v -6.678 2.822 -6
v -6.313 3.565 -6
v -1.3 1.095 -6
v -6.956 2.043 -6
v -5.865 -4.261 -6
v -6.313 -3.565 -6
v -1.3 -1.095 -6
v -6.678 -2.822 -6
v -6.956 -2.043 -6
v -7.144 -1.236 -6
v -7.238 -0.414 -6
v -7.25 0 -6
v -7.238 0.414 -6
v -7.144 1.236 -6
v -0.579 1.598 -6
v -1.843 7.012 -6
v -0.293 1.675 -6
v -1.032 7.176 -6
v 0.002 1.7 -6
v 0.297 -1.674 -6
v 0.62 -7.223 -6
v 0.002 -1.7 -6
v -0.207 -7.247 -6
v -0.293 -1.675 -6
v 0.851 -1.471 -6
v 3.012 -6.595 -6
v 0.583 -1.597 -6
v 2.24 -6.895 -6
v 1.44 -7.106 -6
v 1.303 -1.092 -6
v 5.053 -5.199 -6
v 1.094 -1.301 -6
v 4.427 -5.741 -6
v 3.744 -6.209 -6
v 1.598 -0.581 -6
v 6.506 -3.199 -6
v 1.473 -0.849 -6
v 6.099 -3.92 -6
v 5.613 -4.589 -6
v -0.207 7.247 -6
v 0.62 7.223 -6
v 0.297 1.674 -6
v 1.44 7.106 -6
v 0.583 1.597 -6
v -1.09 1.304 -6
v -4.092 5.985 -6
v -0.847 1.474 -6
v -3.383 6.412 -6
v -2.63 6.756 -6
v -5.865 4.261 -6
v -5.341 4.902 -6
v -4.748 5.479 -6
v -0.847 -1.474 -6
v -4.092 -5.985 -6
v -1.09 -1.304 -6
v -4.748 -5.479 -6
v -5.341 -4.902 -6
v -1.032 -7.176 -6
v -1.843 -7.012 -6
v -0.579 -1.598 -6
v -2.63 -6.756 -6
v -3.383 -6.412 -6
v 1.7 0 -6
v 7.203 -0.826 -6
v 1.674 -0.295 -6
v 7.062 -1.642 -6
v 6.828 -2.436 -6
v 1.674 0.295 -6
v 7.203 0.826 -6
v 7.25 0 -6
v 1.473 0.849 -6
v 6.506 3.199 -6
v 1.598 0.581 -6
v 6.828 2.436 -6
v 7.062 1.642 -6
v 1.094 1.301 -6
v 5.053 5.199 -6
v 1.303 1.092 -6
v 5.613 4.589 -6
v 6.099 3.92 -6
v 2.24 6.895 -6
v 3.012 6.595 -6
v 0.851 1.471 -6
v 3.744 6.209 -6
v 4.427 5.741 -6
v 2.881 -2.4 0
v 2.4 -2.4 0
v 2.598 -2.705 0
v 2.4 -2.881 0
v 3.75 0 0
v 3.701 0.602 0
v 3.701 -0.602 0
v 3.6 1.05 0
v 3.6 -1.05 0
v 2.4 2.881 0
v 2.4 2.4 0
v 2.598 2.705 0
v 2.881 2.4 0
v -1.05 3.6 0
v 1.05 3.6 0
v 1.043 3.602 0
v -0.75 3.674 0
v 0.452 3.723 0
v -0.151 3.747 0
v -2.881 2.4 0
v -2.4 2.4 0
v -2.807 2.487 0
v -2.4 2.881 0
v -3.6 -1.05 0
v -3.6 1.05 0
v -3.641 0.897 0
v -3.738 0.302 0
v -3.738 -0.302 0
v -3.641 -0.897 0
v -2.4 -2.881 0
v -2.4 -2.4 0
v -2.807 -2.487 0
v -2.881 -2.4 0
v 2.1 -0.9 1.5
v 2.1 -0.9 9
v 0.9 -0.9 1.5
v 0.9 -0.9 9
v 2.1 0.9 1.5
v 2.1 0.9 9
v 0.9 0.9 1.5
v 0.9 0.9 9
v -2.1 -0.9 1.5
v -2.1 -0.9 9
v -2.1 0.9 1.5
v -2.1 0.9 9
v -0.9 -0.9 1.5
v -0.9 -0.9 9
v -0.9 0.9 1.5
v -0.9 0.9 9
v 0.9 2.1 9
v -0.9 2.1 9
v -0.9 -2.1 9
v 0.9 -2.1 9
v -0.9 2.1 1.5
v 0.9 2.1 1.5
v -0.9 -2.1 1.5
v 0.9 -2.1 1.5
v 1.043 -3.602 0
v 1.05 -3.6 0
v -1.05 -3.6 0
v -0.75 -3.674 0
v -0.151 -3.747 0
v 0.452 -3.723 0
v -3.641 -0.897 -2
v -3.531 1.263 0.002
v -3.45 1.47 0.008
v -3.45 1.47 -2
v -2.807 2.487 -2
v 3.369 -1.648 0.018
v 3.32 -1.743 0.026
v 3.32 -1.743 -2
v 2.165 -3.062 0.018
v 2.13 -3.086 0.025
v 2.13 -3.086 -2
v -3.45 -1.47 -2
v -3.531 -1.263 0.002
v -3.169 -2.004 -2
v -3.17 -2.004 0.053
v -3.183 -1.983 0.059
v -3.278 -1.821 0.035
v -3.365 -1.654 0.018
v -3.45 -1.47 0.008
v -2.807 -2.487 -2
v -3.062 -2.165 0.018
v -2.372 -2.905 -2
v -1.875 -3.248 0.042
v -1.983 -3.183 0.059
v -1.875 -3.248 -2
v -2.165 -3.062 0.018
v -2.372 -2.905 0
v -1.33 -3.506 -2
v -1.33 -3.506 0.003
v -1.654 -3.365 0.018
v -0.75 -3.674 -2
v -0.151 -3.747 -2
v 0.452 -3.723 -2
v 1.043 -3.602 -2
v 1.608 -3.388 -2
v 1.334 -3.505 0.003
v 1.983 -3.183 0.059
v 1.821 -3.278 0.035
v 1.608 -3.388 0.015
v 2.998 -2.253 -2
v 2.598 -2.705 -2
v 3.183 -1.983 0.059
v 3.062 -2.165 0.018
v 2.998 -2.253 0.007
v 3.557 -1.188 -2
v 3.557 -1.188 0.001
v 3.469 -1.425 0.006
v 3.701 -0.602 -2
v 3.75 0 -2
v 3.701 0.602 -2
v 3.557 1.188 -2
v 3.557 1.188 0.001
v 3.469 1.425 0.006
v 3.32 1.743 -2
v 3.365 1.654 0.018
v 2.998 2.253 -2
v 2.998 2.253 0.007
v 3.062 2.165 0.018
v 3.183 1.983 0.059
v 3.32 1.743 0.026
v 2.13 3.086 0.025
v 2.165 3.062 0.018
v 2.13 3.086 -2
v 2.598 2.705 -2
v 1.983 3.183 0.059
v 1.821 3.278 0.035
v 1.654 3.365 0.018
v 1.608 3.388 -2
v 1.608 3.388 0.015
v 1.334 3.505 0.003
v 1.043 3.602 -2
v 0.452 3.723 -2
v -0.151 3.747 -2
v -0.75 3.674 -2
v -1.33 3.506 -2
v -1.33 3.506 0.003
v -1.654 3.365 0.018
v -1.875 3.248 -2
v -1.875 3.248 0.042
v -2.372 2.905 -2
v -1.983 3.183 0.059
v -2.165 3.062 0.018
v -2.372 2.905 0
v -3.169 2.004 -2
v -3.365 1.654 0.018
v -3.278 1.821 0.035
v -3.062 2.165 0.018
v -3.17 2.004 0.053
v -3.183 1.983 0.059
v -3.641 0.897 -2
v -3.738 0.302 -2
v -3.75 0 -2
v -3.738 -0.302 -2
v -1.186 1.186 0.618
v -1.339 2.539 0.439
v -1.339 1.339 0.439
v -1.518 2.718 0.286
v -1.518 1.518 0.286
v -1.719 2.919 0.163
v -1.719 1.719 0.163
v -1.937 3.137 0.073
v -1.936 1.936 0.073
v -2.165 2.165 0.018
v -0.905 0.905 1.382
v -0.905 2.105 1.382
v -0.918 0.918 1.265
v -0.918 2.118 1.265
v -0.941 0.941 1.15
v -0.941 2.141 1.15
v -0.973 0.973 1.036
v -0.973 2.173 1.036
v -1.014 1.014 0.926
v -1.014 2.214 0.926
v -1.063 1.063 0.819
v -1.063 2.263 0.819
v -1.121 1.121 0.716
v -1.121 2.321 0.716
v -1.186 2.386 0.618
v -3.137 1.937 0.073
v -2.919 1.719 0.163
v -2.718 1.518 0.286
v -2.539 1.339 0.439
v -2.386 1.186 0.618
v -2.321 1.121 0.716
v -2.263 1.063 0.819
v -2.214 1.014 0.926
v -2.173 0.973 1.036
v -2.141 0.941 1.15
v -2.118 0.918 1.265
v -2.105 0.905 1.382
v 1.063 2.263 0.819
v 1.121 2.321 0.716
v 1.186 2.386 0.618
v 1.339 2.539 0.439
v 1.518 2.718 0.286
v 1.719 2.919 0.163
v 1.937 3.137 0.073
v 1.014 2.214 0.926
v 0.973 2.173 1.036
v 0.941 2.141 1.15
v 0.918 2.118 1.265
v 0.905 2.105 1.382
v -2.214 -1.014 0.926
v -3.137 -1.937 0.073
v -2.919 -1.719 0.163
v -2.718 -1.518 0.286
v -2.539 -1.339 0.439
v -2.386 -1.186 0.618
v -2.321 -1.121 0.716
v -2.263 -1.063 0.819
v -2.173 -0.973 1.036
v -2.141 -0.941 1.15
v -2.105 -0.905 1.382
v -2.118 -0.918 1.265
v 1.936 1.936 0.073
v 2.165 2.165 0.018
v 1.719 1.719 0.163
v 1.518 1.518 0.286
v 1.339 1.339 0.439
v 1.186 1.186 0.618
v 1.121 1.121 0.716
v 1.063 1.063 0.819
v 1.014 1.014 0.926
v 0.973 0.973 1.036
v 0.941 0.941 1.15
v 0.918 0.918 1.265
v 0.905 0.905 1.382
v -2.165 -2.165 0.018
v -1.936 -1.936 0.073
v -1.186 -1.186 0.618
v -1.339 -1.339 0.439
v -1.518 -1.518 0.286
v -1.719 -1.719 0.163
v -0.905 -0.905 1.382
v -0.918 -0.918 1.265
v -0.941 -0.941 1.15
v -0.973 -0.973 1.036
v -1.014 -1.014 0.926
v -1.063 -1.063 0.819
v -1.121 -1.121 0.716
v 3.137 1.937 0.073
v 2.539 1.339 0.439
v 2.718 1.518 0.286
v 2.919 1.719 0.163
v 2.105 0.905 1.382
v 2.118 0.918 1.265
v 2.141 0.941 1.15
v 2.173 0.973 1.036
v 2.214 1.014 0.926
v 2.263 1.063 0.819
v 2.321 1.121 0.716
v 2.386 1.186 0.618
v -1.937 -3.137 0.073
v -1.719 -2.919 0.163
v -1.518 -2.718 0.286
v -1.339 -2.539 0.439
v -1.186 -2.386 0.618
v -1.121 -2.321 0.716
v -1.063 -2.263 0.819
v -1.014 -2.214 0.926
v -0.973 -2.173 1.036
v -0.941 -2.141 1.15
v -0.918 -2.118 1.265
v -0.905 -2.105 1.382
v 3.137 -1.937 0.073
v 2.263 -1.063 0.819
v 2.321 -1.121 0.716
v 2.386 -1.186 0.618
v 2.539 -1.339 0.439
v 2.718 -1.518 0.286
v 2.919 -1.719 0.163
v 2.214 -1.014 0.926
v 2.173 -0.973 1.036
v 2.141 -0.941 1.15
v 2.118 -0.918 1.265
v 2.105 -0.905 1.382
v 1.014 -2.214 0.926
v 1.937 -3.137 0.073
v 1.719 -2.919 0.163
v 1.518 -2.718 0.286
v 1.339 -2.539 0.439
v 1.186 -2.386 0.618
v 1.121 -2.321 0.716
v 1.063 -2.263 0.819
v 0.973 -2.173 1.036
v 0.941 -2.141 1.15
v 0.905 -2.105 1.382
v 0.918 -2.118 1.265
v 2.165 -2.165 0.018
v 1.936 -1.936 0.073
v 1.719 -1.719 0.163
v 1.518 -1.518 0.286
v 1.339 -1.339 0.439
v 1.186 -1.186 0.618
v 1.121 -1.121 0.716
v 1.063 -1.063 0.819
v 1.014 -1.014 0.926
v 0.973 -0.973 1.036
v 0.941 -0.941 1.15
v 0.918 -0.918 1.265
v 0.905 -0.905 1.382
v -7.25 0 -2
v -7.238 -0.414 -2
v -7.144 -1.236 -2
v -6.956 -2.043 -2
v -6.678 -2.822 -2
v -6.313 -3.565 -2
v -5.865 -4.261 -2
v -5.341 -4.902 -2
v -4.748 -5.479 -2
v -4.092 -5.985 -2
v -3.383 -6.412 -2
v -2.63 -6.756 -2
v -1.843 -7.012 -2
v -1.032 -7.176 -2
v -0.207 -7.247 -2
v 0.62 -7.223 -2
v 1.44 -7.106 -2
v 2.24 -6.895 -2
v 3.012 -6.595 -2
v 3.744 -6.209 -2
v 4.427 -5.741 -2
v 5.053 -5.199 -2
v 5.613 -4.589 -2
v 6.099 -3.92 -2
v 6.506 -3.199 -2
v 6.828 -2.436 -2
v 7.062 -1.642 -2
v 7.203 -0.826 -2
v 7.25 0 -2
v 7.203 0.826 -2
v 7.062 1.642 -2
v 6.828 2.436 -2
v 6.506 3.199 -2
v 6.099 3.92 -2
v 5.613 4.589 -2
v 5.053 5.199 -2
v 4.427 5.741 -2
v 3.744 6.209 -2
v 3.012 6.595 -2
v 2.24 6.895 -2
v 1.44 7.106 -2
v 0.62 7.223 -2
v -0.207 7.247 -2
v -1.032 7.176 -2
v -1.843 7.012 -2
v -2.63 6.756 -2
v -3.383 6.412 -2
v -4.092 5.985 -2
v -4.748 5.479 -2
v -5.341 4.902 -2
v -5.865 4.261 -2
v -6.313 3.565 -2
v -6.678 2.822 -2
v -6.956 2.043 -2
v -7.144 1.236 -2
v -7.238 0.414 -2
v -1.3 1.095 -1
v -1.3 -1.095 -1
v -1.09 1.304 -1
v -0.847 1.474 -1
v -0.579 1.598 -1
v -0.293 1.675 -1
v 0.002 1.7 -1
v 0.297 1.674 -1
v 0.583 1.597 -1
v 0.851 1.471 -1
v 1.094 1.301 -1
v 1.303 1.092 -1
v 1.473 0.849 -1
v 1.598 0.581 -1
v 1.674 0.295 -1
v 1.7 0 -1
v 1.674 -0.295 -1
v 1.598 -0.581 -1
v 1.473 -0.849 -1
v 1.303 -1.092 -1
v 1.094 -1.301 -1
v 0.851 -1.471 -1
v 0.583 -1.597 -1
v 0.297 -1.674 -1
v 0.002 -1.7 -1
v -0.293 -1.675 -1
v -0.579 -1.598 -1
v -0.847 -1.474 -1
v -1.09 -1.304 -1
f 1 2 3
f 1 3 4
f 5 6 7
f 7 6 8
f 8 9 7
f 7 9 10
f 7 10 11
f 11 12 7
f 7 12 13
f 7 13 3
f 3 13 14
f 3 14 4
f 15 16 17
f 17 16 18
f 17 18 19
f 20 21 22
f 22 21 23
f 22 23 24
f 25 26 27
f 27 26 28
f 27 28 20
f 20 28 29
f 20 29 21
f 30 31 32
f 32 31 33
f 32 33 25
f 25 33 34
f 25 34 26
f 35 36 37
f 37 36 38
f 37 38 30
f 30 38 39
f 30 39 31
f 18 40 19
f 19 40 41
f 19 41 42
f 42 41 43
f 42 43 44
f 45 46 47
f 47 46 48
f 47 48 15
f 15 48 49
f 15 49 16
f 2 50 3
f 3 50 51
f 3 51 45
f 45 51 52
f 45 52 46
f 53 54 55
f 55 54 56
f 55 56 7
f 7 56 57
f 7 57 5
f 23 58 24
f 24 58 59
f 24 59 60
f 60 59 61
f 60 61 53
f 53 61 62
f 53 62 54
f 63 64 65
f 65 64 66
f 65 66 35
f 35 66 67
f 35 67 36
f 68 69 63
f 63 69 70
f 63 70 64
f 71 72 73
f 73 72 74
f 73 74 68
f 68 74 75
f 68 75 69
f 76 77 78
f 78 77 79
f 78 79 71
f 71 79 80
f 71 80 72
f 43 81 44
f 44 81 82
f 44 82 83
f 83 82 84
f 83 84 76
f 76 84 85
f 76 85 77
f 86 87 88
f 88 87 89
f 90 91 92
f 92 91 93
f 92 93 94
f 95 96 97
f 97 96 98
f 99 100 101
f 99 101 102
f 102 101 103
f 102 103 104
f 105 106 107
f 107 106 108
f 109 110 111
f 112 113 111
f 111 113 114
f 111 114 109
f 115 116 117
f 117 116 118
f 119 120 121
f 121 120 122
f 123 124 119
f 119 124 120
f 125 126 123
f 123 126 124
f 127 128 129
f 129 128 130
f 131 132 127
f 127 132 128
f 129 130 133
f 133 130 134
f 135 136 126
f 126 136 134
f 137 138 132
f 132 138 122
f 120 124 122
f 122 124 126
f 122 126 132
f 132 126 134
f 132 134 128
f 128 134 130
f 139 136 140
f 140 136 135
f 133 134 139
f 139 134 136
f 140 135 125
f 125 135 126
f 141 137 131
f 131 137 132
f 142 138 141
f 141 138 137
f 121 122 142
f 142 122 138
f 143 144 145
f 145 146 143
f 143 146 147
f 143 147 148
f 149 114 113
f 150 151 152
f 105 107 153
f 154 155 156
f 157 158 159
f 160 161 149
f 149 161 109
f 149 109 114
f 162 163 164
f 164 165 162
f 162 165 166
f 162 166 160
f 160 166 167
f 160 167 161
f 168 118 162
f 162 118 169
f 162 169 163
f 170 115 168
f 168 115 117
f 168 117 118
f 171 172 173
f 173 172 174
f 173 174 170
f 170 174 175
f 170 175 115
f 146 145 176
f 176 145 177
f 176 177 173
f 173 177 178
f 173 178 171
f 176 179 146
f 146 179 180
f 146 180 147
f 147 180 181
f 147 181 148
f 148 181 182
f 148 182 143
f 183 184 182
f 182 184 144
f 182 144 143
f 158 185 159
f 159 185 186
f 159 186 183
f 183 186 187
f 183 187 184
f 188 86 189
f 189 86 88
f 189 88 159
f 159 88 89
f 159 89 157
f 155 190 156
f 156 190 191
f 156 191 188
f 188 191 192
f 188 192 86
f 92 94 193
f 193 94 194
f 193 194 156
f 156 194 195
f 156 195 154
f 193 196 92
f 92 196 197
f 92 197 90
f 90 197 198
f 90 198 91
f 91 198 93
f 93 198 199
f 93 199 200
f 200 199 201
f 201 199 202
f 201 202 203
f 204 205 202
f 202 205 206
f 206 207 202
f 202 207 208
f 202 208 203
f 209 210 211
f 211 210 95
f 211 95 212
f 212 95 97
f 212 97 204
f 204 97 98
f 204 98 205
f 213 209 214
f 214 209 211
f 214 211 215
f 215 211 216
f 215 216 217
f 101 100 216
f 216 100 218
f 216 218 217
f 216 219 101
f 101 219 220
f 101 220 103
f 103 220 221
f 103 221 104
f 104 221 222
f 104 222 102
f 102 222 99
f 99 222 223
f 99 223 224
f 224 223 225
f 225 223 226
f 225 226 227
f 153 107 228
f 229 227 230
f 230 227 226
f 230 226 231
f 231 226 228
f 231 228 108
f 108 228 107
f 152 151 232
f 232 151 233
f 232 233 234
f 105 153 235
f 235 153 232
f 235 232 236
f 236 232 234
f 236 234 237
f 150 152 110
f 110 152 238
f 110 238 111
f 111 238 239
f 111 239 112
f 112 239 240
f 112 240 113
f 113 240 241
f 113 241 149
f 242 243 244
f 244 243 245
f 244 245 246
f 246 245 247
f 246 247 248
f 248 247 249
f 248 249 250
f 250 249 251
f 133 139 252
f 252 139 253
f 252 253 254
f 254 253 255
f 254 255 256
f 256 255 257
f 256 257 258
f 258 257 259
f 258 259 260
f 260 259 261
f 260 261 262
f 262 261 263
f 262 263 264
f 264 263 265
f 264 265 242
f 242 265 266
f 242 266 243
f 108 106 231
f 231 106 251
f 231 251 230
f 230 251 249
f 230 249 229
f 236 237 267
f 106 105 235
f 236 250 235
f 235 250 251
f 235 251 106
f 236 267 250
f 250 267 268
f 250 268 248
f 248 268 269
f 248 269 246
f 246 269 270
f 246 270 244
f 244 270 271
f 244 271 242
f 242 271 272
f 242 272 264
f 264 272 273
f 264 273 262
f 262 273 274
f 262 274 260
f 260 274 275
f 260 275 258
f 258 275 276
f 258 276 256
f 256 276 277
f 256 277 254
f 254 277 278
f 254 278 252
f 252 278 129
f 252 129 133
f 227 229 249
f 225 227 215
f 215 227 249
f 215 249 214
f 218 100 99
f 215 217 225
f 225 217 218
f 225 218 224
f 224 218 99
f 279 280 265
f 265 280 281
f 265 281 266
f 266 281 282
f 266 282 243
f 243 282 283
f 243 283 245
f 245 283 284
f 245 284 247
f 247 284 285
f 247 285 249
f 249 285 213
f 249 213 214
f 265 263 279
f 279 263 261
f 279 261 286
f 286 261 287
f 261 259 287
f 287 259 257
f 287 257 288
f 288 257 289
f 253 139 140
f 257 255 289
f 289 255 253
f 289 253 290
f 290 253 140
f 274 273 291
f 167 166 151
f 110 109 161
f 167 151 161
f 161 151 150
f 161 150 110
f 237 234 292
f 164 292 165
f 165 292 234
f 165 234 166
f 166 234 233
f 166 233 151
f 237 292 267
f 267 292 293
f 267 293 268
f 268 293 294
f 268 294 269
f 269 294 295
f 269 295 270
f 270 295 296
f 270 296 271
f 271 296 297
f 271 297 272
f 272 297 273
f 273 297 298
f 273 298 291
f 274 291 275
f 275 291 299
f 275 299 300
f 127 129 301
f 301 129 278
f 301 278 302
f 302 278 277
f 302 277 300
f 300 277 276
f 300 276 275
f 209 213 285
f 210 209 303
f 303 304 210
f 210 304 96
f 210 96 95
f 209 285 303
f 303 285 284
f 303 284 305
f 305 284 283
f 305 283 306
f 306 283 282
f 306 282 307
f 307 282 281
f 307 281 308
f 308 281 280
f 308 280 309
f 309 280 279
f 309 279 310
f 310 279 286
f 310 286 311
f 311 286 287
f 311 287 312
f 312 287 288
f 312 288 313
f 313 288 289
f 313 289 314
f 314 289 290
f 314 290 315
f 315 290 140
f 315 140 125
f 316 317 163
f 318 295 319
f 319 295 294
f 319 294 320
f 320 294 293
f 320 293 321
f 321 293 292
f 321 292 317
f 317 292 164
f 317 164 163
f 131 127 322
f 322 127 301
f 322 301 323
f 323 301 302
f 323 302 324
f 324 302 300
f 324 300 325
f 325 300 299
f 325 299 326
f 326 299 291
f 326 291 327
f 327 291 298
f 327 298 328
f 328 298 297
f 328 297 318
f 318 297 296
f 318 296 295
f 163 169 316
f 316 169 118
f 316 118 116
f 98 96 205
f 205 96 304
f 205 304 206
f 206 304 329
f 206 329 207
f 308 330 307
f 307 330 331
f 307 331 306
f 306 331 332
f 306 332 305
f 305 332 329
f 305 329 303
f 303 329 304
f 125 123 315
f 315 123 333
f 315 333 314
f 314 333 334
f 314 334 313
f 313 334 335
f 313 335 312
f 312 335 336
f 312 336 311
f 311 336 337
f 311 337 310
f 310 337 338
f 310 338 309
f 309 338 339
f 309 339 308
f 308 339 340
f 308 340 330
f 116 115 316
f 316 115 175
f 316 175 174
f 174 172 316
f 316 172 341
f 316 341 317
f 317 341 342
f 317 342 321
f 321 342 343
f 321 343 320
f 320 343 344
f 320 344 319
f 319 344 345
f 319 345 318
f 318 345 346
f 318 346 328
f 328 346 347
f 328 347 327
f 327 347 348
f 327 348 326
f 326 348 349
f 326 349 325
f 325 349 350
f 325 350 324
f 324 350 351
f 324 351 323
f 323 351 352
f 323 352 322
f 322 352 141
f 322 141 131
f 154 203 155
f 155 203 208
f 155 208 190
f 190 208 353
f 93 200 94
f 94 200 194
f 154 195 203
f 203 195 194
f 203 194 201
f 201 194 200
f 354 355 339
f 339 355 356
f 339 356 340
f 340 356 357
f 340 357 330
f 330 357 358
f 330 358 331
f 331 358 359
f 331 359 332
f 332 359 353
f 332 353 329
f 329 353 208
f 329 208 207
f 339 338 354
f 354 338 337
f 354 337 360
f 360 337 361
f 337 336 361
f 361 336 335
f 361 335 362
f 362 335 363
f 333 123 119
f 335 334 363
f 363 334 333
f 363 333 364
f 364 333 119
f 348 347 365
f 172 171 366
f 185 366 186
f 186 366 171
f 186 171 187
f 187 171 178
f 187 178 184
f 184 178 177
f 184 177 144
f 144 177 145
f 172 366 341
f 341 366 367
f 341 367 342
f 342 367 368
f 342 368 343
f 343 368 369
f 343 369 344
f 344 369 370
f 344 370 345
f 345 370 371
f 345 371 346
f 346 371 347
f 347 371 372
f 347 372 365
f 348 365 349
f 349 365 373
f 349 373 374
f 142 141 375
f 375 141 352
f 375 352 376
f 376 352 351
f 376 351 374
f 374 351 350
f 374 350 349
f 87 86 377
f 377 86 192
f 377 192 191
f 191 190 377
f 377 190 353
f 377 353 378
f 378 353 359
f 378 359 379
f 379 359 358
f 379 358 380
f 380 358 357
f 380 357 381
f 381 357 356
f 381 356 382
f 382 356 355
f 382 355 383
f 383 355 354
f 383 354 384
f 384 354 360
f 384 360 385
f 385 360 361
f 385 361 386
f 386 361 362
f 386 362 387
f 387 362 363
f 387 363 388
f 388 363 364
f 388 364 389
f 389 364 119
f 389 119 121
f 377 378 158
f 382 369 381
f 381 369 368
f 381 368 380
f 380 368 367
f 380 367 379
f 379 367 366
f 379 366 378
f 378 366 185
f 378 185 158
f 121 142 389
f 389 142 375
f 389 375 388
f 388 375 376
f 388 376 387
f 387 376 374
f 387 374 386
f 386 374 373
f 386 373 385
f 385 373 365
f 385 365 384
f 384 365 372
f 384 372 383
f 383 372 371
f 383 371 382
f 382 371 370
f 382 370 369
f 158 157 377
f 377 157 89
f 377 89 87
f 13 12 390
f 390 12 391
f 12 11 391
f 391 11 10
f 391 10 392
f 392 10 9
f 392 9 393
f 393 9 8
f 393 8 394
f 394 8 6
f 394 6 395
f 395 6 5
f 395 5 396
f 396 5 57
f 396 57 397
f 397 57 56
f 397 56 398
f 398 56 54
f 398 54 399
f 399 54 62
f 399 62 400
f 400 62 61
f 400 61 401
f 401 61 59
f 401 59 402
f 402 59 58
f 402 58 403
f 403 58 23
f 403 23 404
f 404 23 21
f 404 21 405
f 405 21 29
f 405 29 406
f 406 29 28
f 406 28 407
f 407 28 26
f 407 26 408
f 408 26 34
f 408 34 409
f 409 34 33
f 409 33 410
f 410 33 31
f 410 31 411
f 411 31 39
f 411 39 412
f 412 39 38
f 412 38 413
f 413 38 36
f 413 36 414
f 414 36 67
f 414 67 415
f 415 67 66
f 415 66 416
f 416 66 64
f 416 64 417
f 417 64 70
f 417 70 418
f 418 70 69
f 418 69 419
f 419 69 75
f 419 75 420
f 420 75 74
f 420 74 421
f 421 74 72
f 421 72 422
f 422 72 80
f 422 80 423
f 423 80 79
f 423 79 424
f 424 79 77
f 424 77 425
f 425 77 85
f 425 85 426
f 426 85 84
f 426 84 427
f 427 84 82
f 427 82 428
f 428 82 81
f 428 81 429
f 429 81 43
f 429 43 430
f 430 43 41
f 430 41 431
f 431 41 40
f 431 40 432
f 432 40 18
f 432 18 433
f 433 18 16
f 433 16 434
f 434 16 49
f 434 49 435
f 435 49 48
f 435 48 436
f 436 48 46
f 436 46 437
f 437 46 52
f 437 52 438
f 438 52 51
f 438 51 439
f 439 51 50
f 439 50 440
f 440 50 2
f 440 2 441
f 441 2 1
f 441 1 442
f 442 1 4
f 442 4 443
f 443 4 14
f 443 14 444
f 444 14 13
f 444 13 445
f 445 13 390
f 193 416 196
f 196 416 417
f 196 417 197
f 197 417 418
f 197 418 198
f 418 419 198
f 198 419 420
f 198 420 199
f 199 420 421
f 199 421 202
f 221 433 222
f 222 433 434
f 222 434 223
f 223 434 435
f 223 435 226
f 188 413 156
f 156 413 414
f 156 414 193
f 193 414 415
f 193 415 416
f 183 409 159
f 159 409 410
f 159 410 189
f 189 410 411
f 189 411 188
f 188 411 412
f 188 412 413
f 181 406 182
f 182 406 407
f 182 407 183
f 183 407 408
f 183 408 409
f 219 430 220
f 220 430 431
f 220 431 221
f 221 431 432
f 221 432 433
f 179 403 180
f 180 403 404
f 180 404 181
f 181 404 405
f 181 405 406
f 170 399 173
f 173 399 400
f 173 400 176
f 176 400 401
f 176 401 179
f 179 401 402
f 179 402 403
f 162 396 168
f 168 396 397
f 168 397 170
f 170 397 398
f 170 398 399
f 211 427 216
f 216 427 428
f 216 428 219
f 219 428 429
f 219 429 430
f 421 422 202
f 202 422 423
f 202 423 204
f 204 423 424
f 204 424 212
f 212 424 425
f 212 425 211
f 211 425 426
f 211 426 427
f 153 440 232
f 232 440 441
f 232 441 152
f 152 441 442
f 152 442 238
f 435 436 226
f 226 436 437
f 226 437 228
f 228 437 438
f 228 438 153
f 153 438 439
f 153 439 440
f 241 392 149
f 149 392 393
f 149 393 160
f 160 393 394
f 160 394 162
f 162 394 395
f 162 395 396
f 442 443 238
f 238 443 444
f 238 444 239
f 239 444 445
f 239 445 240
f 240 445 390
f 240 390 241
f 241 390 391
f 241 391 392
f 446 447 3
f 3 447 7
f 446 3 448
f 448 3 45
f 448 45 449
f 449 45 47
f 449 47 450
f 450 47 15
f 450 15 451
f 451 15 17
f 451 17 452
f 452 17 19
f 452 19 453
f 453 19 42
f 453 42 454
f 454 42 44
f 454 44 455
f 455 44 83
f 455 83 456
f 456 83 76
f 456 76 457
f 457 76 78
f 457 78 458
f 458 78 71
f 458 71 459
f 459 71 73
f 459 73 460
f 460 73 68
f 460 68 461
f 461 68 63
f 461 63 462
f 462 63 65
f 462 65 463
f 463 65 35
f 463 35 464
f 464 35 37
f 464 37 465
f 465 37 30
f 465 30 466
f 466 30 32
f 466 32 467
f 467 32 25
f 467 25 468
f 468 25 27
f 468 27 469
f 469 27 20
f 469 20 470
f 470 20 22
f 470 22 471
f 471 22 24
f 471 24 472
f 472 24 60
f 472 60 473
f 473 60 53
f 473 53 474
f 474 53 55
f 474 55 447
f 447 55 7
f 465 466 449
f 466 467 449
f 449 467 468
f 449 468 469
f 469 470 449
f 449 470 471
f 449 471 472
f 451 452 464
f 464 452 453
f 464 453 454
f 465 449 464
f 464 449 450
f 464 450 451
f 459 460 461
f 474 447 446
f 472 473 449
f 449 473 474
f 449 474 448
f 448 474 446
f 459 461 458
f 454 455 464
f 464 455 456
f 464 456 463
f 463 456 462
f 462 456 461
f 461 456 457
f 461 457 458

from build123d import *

# Parameters (mm, degrees)
SKETCH_1_W          = 1.8
SKETCH_1_H          = 4.2
SKETCH_1_W_2        = 4.2
SKETCH_1_H_2        = 1.8
EXTRUDE_1_DEPTH     = 9
SKETCH_3_R          = 3.75
EXTRUDE_5_DEPTH     = 2
FILLET_2_R          = 1.5
SKETCH_8_R          = 7.25
EXTRUDE_6_DEPTH     = 4
CUT_EXTRUDE_1_DEPTH = 5


with BuildPart() as part:
    # 草图1 → 凸台-拉伸1 (new body)
    with BuildSketch(Plane.XY):
        Rectangle(SKETCH_1_W, SKETCH_1_H)
        Rectangle(SKETCH_1_W_2, SKETCH_1_H_2)
    extrude(amount=EXTRUDE_1_DEPTH)

    # 草图3 → 凸台-拉伸5 (add)
    with BuildSketch(Plane(origin=(0, 0, 0), x_dir=(-1, 0, 0), z_dir=(0, 0, -1))):
        Circle(SKETCH_3_R)
    extrude(amount=EXTRUDE_5_DEPTH)

    # 圆角2
    # the kernel refuses this fillet: 1.5 mm, written as the material it adds along each edge
    with BuildSketch(Plane(origin=(-2.85, -0.9, 0), x_dir=(0, -1, 0), z_dir=(1, 0, 0))) as fillet_2_piece_1_section:
        with BuildLine():
            CenterArc((FILLET_2_R, -FILLET_2_R), FILLET_2_R, 90, 90)
            Line((0, -FILLET_2_R), (0, 0))
            Line((0, 0), (FILLET_2_R, 0))
        make_face()
    fillet_2_piece_1 = extrude(amount=4.95, mode=Mode.PRIVATE)
    fillet_2_piece_1 = split(fillet_2_piece_1, bisect_by=Plane(origin=(-2.1, -1.239592671, 0.339592671), z_dir=(1, 0, 0)), keep=Keep.TOP, mode=Mode.PRIVATE)
    add(fillet_2_piece_1)
    with BuildSketch(Plane(origin=(2.1, 0.9, 0), x_dir=(0, 1, 0), z_dir=(-1, 0, 0))) as fillet_2_piece_2_section:
        with BuildLine():
            CenterArc((FILLET_2_R, -FILLET_2_R), FILLET_2_R, 90, 90)
            Line((0, -FILLET_2_R), (0, 0))
            Line((0, 0), (FILLET_2_R, 0))
        make_face()
    fillet_2_piece_2 = extrude(amount=4.95, mode=Mode.PRIVATE)
    fillet_2_piece_2 = split(fillet_2_piece_2, bisect_by=Plane(origin=(-2.1, 1.239592671, 0.339592671), z_dir=(1, 0, 0)), keep=Keep.TOP, mode=Mode.PRIVATE)
    add(fillet_2_piece_2)
    with BuildSketch(Plane(origin=(-0.9, -2.1, 0), x_dir=(0, -1, 0), z_dir=(1, 0, 0)), Plane(origin=(0.9, 2.1, 0), x_dir=(0, 1, 0), z_dir=(-1, 0, 0)), Plane(origin=(-2.1, 0.9, 0), x_dir=(-1, 0, 0), z_dir=(0, -1, 0)), Plane(origin=(2.1, -0.9, 0), x_dir=(1, 0, 0), z_dir=(0, 1, 0))) as fillet_2_piece_3:
        with BuildLine():
            CenterArc((FILLET_2_R, -FILLET_2_R), FILLET_2_R, 90, 90)
            Line((0, -FILLET_2_R), (0, 0))
            Line((0, 0), (FILLET_2_R, 0))
        make_face()
    extrude(amount=1.8)
    with BuildSketch(Plane(origin=(0.9, -2.1, 0), x_dir=(1, 0, 0), z_dir=(0, 1, 0))) as fillet_2_piece_4_section:
        with BuildLine():
            CenterArc((FILLET_2_R, -FILLET_2_R), FILLET_2_R, 90, 90)
            Line((0, -FILLET_2_R), (0, 0))
            Line((0, 0), (FILLET_2_R, 0))
        make_face()
    fillet_2_piece_4 = extrude(amount=4.95, mode=Mode.PRIVATE)
    fillet_2_piece_4 = split(fillet_2_piece_4, bisect_by=Plane(origin=(1.239592671, 2.1, 0.339592671), z_dir=(0, -1, 0)), keep=Keep.TOP, mode=Mode.PRIVATE)
    add(fillet_2_piece_4)
    with BuildSketch(Plane(origin=(0.9, -2.85, 0), x_dir=(1, 0, 0), z_dir=(0, 1, 0))) as fillet_2_piece_5_section:
        with BuildLine():
            CenterArc((FILLET_2_R, -FILLET_2_R), FILLET_2_R, 90, 90)
            Line((0, -FILLET_2_R), (0, 0))
            Line((0, 0), (FILLET_2_R, 0))
        make_face()
    fillet_2_piece_5 = extrude(amount=4.95, mode=Mode.PRIVATE)
    fillet_2_piece_5 = split(fillet_2_piece_5, bisect_by=Plane(origin=(1.239592671, -2.1, 0.339592671), z_dir=(0, 1, 0)), keep=Keep.TOP, mode=Mode.PRIVATE)
    add(fillet_2_piece_5)
    with BuildSketch(Plane(origin=(-0.9, 2.85, 0), x_dir=(-1, 0, 0), z_dir=(0, -1, 0))) as fillet_2_piece_6_section:
        with BuildLine():
            CenterArc((FILLET_2_R, -FILLET_2_R), FILLET_2_R, 90, 90)
            Line((0, -FILLET_2_R), (0, 0))
            Line((0, 0), (FILLET_2_R, 0))
        make_face()
    fillet_2_piece_6 = extrude(amount=4.95, mode=Mode.PRIVATE)
    fillet_2_piece_6 = split(fillet_2_piece_6, bisect_by=Plane(origin=(-1.239592671, 2.1, 0.339592671), z_dir=(0, -1, 0)), keep=Keep.TOP, mode=Mode.PRIVATE)
    add(fillet_2_piece_6)
    with BuildSketch(Plane(origin=(-0.9, 2.1, 0), x_dir=(-1, 0, 0), z_dir=(0, -1, 0))) as fillet_2_piece_7_section:
        with BuildLine():
            CenterArc((FILLET_2_R, -FILLET_2_R), FILLET_2_R, 90, 90)
            Line((0, -FILLET_2_R), (0, 0))
            Line((0, 0), (FILLET_2_R, 0))
        make_face()
    fillet_2_piece_7 = extrude(amount=4.95, mode=Mode.PRIVATE)
    fillet_2_piece_7 = split(fillet_2_piece_7, bisect_by=Plane(origin=(-1.239592671, -2.1, 0.339592671), z_dir=(0, 1, 0)), keep=Keep.TOP, mode=Mode.PRIVATE)
    add(fillet_2_piece_7)
    with BuildSketch(Plane(origin=(2.85, 0.9, 0), x_dir=(0, 1, 0), z_dir=(-1, 0, 0))) as fillet_2_piece_8_section:
        with BuildLine():
            CenterArc((FILLET_2_R, -FILLET_2_R), FILLET_2_R, 90, 90)
            Line((0, -FILLET_2_R), (0, 0))
            Line((0, 0), (FILLET_2_R, 0))
        make_face()
    fillet_2_piece_8 = extrude(amount=4.95, mode=Mode.PRIVATE)
    fillet_2_piece_8 = split(fillet_2_piece_8, bisect_by=Plane(origin=(2.1, 1.239592671, 0.339592671), z_dir=(-1, 0, 0)), keep=Keep.TOP, mode=Mode.PRIVATE)
    add(fillet_2_piece_8)
    with BuildSketch(Plane(origin=(-2.1, -0.9, 0), x_dir=(0, -1, 0), z_dir=(1, 0, 0))) as fillet_2_piece_9_section:
        with BuildLine():
            CenterArc((FILLET_2_R, -FILLET_2_R), FILLET_2_R, 90, 90)
            Line((0, -FILLET_2_R), (0, 0))
            Line((0, 0), (FILLET_2_R, 0))
        make_face()
    fillet_2_piece_9 = extrude(amount=4.95, mode=Mode.PRIVATE)
    fillet_2_piece_9 = split(fillet_2_piece_9, bisect_by=Plane(origin=(2.1, -1.239592671, 0.339592671), z_dir=(-1, 0, 0)), keep=Keep.TOP, mode=Mode.PRIVATE)
    add(fillet_2_piece_9)
    with BuildSketch(Plane(origin=(2.1, -4.65, 0), x_dir=(1, 0, 0), z_dir=(0, 1, 0))) as fillet_2_piece_10a_section:
        with BuildLine():
            CenterArc((FILLET_2_R, -FILLET_2_R), FILLET_2_R, 90, 90)
            Line((0, -FILLET_2_R), (0, 0))
            Line((0, 0), (FILLET_2_R, 0))
        make_face()
    fillet_2_piece_10a = extrude(amount=5.55, mode=Mode.PRIVATE)
    fillet_2_piece_10a = fillet_2_piece_10a & Plane(origin=(0, 0, 0.370789592), x_dir=(-1, 0, 0), z_dir=(0, 0, 1)) * Cylinder(3.75, 18, mode=Mode.PRIVATE)
    fillet_2_piece_10a = split(fillet_2_piece_10a, bisect_by=Plane(origin=(2.382978133, -0.9, 0.370789592), z_dir=(0, -1, 0)), keep=Keep.TOP, mode=Mode.PRIVATE)
    with BuildSketch(Plane(origin=(0.9, -0.9, 0), x_dir=(0, -1, 0), z_dir=(1, 0, 0))) as fillet_2_piece_10b_section:
        with BuildLine():
            CenterArc((FILLET_2_R, -FILLET_2_R), FILLET_2_R, 90, 90)
            Line((0, -FILLET_2_R), (0, 0))
            Line((0, 0), (FILLET_2_R, 0))
        make_face()
    fillet_2_piece_10b = extrude(amount=4.95, mode=Mode.PRIVATE)
    fillet_2_piece_10b = fillet_2_piece_10b & Plane(origin=(0, 0, 0.356473498), x_dir=(-1, 0, 0), z_dir=(0, 0, 1)) * Cylinder(3.75, 16, mode=Mode.PRIVATE)
    fillet_2_piece_10b = split(fillet_2_piece_10b, bisect_by=Plane(origin=(2.1, -1.208975446, 0.356473498), z_dir=(1, 0, 0)), keep=Keep.TOP, mode=Mode.PRIVATE)
    fillet_2_piece_10 = fillet_2_piece_10a & fillet_2_piece_10b
    add(fillet_2_piece_10)
    with BuildSketch(Plane(origin=(5.85, 0.9, 0), x_dir=(0, 1, 0), z_dir=(-1, 0, 0))) as fillet_2_piece_11a_section:
        with BuildLine():
            CenterArc((FILLET_2_R, -FILLET_2_R), FILLET_2_R, 90, 90)
            Line((0, -FILLET_2_R), (0, 0))
            Line((0, 0), (FILLET_2_R, 0))
        make_face()
    fillet_2_piece_11a = extrude(amount=4.95, mode=Mode.PRIVATE)
    fillet_2_piece_11a = fillet_2_piece_11a & Plane(origin=(0, 0, 0.356473584), x_dir=(-1, 0, 0), z_dir=(0, 0, 1)) * Cylinder(3.75, 16, mode=Mode.PRIVATE)
    fillet_2_piece_11a = split(fillet_2_piece_11a, bisect_by=Plane(origin=(2.1, 1.208975364, 0.356473584), z_dir=(1, 0, 0)), keep=Keep.TOP, mode=Mode.PRIVATE)
    with BuildSketch(Plane(origin=(2.1, -0.9, 0), x_dir=(1, 0, 0), z_dir=(0, 1, 0))) as fillet_2_piece_11b_section:
        with BuildLine():
            CenterArc((FILLET_2_R, -FILLET_2_R), FILLET_2_R, 90, 90)
            Line((0, -FILLET_2_R), (0, 0))
            Line((0, 0), (FILLET_2_R, 0))
        make_face()
    fillet_2_piece_11b = extrude(amount=5.55, mode=Mode.PRIVATE)
    fillet_2_piece_11b = fillet_2_piece_11b & Plane(origin=(0, 0, 0.370789978), x_dir=(-1, 0, 0), z_dir=(0, 0, 1)) * Cylinder(3.75, 18, mode=Mode.PRIVATE)
    fillet_2_piece_11b = split(fillet_2_piece_11b, bisect_by=Plane(origin=(2.382978714, 0.9, 0.370789978), z_dir=(0, 1, 0)), keep=Keep.TOP, mode=Mode.PRIVATE)
    fillet_2_piece_11 = fillet_2_piece_11a & fillet_2_piece_11b
    add(fillet_2_piece_11)
    with BuildSketch(Plane(origin=(-0.9, -0.9, 0), x_dir=(-1, 0, 0), z_dir=(0, -1, 0))) as fillet_2_piece_12a_section:
        with BuildLine():
            CenterArc((FILLET_2_R, -FILLET_2_R), FILLET_2_R, 90, 90)
            Line((0, -FILLET_2_R), (0, 0))
            Line((0, 0), (FILLET_2_R, 0))
        make_face()
    fillet_2_piece_12a = extrude(amount=4.95, mode=Mode.PRIVATE)
    fillet_2_piece_12a = fillet_2_piece_12a & Plane(origin=(0, 0, 0.356473498), x_dir=(-1, 0, 0), z_dir=(0, 0, 1)) * Cylinder(3.75, 16, mode=Mode.PRIVATE)
    fillet_2_piece_12a = split(fillet_2_piece_12a, bisect_by=Plane(origin=(-1.208975446, -2.1, 0.356473498), z_dir=(0, -1, 0)), keep=Keep.TOP, mode=Mode.PRIVATE)
    with BuildSketch(Plane(origin=(-4.65, -2.1, 0), x_dir=(0, -1, 0), z_dir=(1, 0, 0))) as fillet_2_piece_12b_section:
        with BuildLine():
            CenterArc((FILLET_2_R, -FILLET_2_R), FILLET_2_R, 90, 90)
            Line((0, -FILLET_2_R), (0, 0))
            Line((0, 0), (FILLET_2_R, 0))
        make_face()
    fillet_2_piece_12b = extrude(amount=5.55, mode=Mode.PRIVATE)
    fillet_2_piece_12b = fillet_2_piece_12b & Plane(origin=(0, 0, 0.370789592), x_dir=(-1, 0, 0), z_dir=(0, 0, 1)) * Cylinder(3.75, 18, mode=Mode.PRIVATE)
    fillet_2_piece_12b = split(fillet_2_piece_12b, bisect_by=Plane(origin=(-0.9, -2.382978133, 0.370789592), z_dir=(-1, 0, 0)), keep=Keep.TOP, mode=Mode.PRIVATE)
    fillet_2_piece_12 = fillet_2_piece_12a & fillet_2_piece_12b
    add(fillet_2_piece_12)
    with BuildSketch(Plane(origin=(0.9, -5.85, 0), x_dir=(1, 0, 0), z_dir=(0, 1, 0))) as fillet_2_piece_13a_section:
        with BuildLine():
            CenterArc((FILLET_2_R, -FILLET_2_R), FILLET_2_R, 90, 90)
            Line((0, -FILLET_2_R), (0, 0))
            Line((0, 0), (FILLET_2_R, 0))
        make_face()
    fillet_2_piece_13a = extrude(amount=4.95, mode=Mode.PRIVATE)
    fillet_2_piece_13a = fillet_2_piece_13a & Plane(origin=(0, 0, 0.356473584), x_dir=(-1, 0, 0), z_dir=(0, 0, 1)) * Cylinder(3.75, 16, mode=Mode.PRIVATE)
    fillet_2_piece_13a = split(fillet_2_piece_13a, bisect_by=Plane(origin=(1.208975364, -2.1, 0.356473584), z_dir=(0, -1, 0)), keep=Keep.TOP, mode=Mode.PRIVATE)
    with BuildSketch(Plane(origin=(-0.9, -2.1, 0), x_dir=(0, -1, 0), z_dir=(1, 0, 0))) as fillet_2_piece_13b_section:
        with BuildLine():
            CenterArc((FILLET_2_R, -FILLET_2_R), FILLET_2_R, 90, 90)
            Line((0, -FILLET_2_R), (0, 0))
            Line((0, 0), (FILLET_2_R, 0))
        make_face()
    fillet_2_piece_13b = extrude(amount=5.55, mode=Mode.PRIVATE)
    fillet_2_piece_13b = fillet_2_piece_13b & Plane(origin=(0, 0, 0.370789978), x_dir=(-1, 0, 0), z_dir=(0, 0, 1)) * Cylinder(3.75, 18, mode=Mode.PRIVATE)
    fillet_2_piece_13b = split(fillet_2_piece_13b, bisect_by=Plane(origin=(0.9, -2.382978714, 0.370789978), z_dir=(1, 0, 0)), keep=Keep.TOP, mode=Mode.PRIVATE)
    fillet_2_piece_13 = fillet_2_piece_13a & fillet_2_piece_13b
    add(fillet_2_piece_13)
    with BuildSketch(Plane(origin=(4.65, 2.1, 0), x_dir=(0, 1, 0), z_dir=(-1, 0, 0))) as fillet_2_piece_14a_section:
        with BuildLine():
            CenterArc((FILLET_2_R, -FILLET_2_R), FILLET_2_R, 90, 90)
            Line((0, -FILLET_2_R), (0, 0))
            Line((0, 0), (FILLET_2_R, 0))
        make_face()
    fillet_2_piece_14a = extrude(amount=5.55, mode=Mode.PRIVATE)
    fillet_2_piece_14a = fillet_2_piece_14a & Plane(origin=(0, 0, 0.370789592), x_dir=(-1, 0, 0), z_dir=(0, 0, 1)) * Cylinder(3.75, 18, mode=Mode.PRIVATE)
    fillet_2_piece_14a = split(fillet_2_piece_14a, bisect_by=Plane(origin=(0.9, 2.382978133, 0.370789592), z_dir=(1, 0, 0)), keep=Keep.TOP, mode=Mode.PRIVATE)
    with BuildSketch(Plane(origin=(0.9, 0.9, 0), x_dir=(1, 0, 0), z_dir=(0, 1, 0))) as fillet_2_piece_14b_section:
        with BuildLine():
            CenterArc((FILLET_2_R, -FILLET_2_R), FILLET_2_R, 90, 90)
            Line((0, -FILLET_2_R), (0, 0))
            Line((0, 0), (FILLET_2_R, 0))
        make_face()
    fillet_2_piece_14b = extrude(amount=4.95, mode=Mode.PRIVATE)
    fillet_2_piece_14b = fillet_2_piece_14b & Plane(origin=(0, 0, 0.356473498), x_dir=(-1, 0, 0), z_dir=(0, 0, 1)) * Cylinder(3.75, 16, mode=Mode.PRIVATE)
    fillet_2_piece_14b = split(fillet_2_piece_14b, bisect_by=Plane(origin=(1.208975446, 2.1, 0.356473498), z_dir=(0, 1, 0)), keep=Keep.TOP, mode=Mode.PRIVATE)
    fillet_2_piece_14 = fillet_2_piece_14a & fillet_2_piece_14b
    add(fillet_2_piece_14)
    with BuildSketch(Plane(origin=(-0.9, 5.85, 0), x_dir=(-1, 0, 0), z_dir=(0, -1, 0))) as fillet_2_piece_15a_section:
        with BuildLine():
            CenterArc((FILLET_2_R, -FILLET_2_R), FILLET_2_R, 90, 90)
            Line((0, -FILLET_2_R), (0, 0))
            Line((0, 0), (FILLET_2_R, 0))
        make_face()
    fillet_2_piece_15a = extrude(amount=4.95, mode=Mode.PRIVATE)
    fillet_2_piece_15a = fillet_2_piece_15a & Plane(origin=(0, 0, 0.356473584), x_dir=(-1, 0, 0), z_dir=(0, 0, 1)) * Cylinder(3.75, 16, mode=Mode.PRIVATE)
    fillet_2_piece_15a = split(fillet_2_piece_15a, bisect_by=Plane(origin=(-1.208975364, 2.1, 0.356473584), z_dir=(0, 1, 0)), keep=Keep.TOP, mode=Mode.PRIVATE)
    with BuildSketch(Plane(origin=(0.9, 2.1, 0), x_dir=(0, 1, 0), z_dir=(-1, 0, 0))) as fillet_2_piece_15b_section:
        with BuildLine():
            CenterArc((FILLET_2_R, -FILLET_2_R), FILLET_2_R, 90, 90)
            Line((0, -FILLET_2_R), (0, 0))
            Line((0, 0), (FILLET_2_R, 0))
        make_face()
    fillet_2_piece_15b = extrude(amount=5.55, mode=Mode.PRIVATE)
    fillet_2_piece_15b = fillet_2_piece_15b & Plane(origin=(0, 0, 0.370789978), x_dir=(-1, 0, 0), z_dir=(0, 0, 1)) * Cylinder(3.75, 18, mode=Mode.PRIVATE)
    fillet_2_piece_15b = split(fillet_2_piece_15b, bisect_by=Plane(origin=(-0.9, 2.382978714, 0.370789978), z_dir=(-1, 0, 0)), keep=Keep.TOP, mode=Mode.PRIVATE)
    fillet_2_piece_15 = fillet_2_piece_15a & fillet_2_piece_15b
    add(fillet_2_piece_15)
    with BuildSketch(Plane(origin=(-2.1, 4.65, 0), x_dir=(-1, 0, 0), z_dir=(0, -1, 0))) as fillet_2_piece_16a_section:
        with BuildLine():
            CenterArc((FILLET_2_R, -FILLET_2_R), FILLET_2_R, 90, 90)
            Line((0, -FILLET_2_R), (0, 0))
            Line((0, 0), (FILLET_2_R, 0))
        make_face()
    fillet_2_piece_16a = extrude(amount=5.55, mode=Mode.PRIVATE)
    fillet_2_piece_16a = fillet_2_piece_16a & Plane(origin=(0, 0, 0.370789592), x_dir=(-1, 0, 0), z_dir=(0, 0, 1)) * Cylinder(3.75, 18, mode=Mode.PRIVATE)
    fillet_2_piece_16a = split(fillet_2_piece_16a, bisect_by=Plane(origin=(-2.382978133, 0.9, 0.370789592), z_dir=(0, 1, 0)), keep=Keep.TOP, mode=Mode.PRIVATE)
    with BuildSketch(Plane(origin=(-0.9, 0.9, 0), x_dir=(0, 1, 0), z_dir=(-1, 0, 0))) as fillet_2_piece_16b_section:
        with BuildLine():
            CenterArc((FILLET_2_R, -FILLET_2_R), FILLET_2_R, 90, 90)
            Line((0, -FILLET_2_R), (0, 0))
            Line((0, 0), (FILLET_2_R, 0))
        make_face()
    fillet_2_piece_16b = extrude(amount=4.95, mode=Mode.PRIVATE)
    fillet_2_piece_16b = fillet_2_piece_16b & Plane(origin=(0, 0, 0.356473498), x_dir=(-1, 0, 0), z_dir=(0, 0, 1)) * Cylinder(3.75, 16, mode=Mode.PRIVATE)
    fillet_2_piece_16b = split(fillet_2_piece_16b, bisect_by=Plane(origin=(-2.1, 1.208975446, 0.356473498), z_dir=(-1, 0, 0)), keep=Keep.TOP, mode=Mode.PRIVATE)
    fillet_2_piece_16 = fillet_2_piece_16a & fillet_2_piece_16b
    add(fillet_2_piece_16)
    with BuildSketch(Plane(origin=(-5.85, -0.9, 0), x_dir=(0, -1, 0), z_dir=(1, 0, 0))) as fillet_2_piece_17a_section:
        with BuildLine():
            CenterArc((FILLET_2_R, -FILLET_2_R), FILLET_2_R, 90, 90)
            Line((0, -FILLET_2_R), (0, 0))
            Line((0, 0), (FILLET_2_R, 0))
        make_face()
    fillet_2_piece_17a = extrude(amount=4.95, mode=Mode.PRIVATE)
    fillet_2_piece_17a = fillet_2_piece_17a & Plane(origin=(0, 0, 0.356473584), x_dir=(-1, 0, 0), z_dir=(0, 0, 1)) * Cylinder(3.75, 16, mode=Mode.PRIVATE)
    fillet_2_piece_17a = split(fillet_2_piece_17a, bisect_by=Plane(origin=(-2.1, -1.208975364, 0.356473584), z_dir=(-1, 0, 0)), keep=Keep.TOP, mode=Mode.PRIVATE)
    with BuildSketch(Plane(origin=(-2.1, 0.9, 0), x_dir=(-1, 0, 0), z_dir=(0, -1, 0))) as fillet_2_piece_17b_section:
        with BuildLine():
            CenterArc((FILLET_2_R, -FILLET_2_R), FILLET_2_R, 90, 90)
            Line((0, -FILLET_2_R), (0, 0))
            Line((0, 0), (FILLET_2_R, 0))
        make_face()
    fillet_2_piece_17b = extrude(amount=5.55, mode=Mode.PRIVATE)
    fillet_2_piece_17b = fillet_2_piece_17b & Plane(origin=(0, 0, 0.370789978), x_dir=(-1, 0, 0), z_dir=(0, 0, 1)) * Cylinder(3.75, 18, mode=Mode.PRIVATE)
    fillet_2_piece_17b = split(fillet_2_piece_17b, bisect_by=Plane(origin=(-2.382978714, -0.9, 0.370789978), z_dir=(0, -1, 0)), keep=Keep.TOP, mode=Mode.PRIVATE)
    fillet_2_piece_17 = fillet_2_piece_17a & fillet_2_piece_17b
    add(fillet_2_piece_17)

    # 草图8 → 凸台-拉伸6 (add)
    with BuildSketch(Plane(origin=(0, 0, -2), x_dir=(-1, 0, 0), z_dir=(0, 0, -1))):
        Circle(SKETCH_8_R)
    extrude(amount=EXTRUDE_6_DEPTH)

    # 草图7 → 切除-拉伸1 (cut)
    with BuildSketch(Plane(origin=(0, 0, -6), x_dir=(-1, 0, 0), z_dir=(0, 0, -1))):
        with BuildLine():
            Line((1.3, -1.095445115), (1.3, 1.095445115))
            ThreePointArc((1.3, 1.095445115), (-1.7, 0), (1.3, -1.095445115))
        make_face()
    extrude(amount=-CUT_EXTRUDE_1_DEPTH, mode=Mode.SUBTRACT)


solid = part.part
